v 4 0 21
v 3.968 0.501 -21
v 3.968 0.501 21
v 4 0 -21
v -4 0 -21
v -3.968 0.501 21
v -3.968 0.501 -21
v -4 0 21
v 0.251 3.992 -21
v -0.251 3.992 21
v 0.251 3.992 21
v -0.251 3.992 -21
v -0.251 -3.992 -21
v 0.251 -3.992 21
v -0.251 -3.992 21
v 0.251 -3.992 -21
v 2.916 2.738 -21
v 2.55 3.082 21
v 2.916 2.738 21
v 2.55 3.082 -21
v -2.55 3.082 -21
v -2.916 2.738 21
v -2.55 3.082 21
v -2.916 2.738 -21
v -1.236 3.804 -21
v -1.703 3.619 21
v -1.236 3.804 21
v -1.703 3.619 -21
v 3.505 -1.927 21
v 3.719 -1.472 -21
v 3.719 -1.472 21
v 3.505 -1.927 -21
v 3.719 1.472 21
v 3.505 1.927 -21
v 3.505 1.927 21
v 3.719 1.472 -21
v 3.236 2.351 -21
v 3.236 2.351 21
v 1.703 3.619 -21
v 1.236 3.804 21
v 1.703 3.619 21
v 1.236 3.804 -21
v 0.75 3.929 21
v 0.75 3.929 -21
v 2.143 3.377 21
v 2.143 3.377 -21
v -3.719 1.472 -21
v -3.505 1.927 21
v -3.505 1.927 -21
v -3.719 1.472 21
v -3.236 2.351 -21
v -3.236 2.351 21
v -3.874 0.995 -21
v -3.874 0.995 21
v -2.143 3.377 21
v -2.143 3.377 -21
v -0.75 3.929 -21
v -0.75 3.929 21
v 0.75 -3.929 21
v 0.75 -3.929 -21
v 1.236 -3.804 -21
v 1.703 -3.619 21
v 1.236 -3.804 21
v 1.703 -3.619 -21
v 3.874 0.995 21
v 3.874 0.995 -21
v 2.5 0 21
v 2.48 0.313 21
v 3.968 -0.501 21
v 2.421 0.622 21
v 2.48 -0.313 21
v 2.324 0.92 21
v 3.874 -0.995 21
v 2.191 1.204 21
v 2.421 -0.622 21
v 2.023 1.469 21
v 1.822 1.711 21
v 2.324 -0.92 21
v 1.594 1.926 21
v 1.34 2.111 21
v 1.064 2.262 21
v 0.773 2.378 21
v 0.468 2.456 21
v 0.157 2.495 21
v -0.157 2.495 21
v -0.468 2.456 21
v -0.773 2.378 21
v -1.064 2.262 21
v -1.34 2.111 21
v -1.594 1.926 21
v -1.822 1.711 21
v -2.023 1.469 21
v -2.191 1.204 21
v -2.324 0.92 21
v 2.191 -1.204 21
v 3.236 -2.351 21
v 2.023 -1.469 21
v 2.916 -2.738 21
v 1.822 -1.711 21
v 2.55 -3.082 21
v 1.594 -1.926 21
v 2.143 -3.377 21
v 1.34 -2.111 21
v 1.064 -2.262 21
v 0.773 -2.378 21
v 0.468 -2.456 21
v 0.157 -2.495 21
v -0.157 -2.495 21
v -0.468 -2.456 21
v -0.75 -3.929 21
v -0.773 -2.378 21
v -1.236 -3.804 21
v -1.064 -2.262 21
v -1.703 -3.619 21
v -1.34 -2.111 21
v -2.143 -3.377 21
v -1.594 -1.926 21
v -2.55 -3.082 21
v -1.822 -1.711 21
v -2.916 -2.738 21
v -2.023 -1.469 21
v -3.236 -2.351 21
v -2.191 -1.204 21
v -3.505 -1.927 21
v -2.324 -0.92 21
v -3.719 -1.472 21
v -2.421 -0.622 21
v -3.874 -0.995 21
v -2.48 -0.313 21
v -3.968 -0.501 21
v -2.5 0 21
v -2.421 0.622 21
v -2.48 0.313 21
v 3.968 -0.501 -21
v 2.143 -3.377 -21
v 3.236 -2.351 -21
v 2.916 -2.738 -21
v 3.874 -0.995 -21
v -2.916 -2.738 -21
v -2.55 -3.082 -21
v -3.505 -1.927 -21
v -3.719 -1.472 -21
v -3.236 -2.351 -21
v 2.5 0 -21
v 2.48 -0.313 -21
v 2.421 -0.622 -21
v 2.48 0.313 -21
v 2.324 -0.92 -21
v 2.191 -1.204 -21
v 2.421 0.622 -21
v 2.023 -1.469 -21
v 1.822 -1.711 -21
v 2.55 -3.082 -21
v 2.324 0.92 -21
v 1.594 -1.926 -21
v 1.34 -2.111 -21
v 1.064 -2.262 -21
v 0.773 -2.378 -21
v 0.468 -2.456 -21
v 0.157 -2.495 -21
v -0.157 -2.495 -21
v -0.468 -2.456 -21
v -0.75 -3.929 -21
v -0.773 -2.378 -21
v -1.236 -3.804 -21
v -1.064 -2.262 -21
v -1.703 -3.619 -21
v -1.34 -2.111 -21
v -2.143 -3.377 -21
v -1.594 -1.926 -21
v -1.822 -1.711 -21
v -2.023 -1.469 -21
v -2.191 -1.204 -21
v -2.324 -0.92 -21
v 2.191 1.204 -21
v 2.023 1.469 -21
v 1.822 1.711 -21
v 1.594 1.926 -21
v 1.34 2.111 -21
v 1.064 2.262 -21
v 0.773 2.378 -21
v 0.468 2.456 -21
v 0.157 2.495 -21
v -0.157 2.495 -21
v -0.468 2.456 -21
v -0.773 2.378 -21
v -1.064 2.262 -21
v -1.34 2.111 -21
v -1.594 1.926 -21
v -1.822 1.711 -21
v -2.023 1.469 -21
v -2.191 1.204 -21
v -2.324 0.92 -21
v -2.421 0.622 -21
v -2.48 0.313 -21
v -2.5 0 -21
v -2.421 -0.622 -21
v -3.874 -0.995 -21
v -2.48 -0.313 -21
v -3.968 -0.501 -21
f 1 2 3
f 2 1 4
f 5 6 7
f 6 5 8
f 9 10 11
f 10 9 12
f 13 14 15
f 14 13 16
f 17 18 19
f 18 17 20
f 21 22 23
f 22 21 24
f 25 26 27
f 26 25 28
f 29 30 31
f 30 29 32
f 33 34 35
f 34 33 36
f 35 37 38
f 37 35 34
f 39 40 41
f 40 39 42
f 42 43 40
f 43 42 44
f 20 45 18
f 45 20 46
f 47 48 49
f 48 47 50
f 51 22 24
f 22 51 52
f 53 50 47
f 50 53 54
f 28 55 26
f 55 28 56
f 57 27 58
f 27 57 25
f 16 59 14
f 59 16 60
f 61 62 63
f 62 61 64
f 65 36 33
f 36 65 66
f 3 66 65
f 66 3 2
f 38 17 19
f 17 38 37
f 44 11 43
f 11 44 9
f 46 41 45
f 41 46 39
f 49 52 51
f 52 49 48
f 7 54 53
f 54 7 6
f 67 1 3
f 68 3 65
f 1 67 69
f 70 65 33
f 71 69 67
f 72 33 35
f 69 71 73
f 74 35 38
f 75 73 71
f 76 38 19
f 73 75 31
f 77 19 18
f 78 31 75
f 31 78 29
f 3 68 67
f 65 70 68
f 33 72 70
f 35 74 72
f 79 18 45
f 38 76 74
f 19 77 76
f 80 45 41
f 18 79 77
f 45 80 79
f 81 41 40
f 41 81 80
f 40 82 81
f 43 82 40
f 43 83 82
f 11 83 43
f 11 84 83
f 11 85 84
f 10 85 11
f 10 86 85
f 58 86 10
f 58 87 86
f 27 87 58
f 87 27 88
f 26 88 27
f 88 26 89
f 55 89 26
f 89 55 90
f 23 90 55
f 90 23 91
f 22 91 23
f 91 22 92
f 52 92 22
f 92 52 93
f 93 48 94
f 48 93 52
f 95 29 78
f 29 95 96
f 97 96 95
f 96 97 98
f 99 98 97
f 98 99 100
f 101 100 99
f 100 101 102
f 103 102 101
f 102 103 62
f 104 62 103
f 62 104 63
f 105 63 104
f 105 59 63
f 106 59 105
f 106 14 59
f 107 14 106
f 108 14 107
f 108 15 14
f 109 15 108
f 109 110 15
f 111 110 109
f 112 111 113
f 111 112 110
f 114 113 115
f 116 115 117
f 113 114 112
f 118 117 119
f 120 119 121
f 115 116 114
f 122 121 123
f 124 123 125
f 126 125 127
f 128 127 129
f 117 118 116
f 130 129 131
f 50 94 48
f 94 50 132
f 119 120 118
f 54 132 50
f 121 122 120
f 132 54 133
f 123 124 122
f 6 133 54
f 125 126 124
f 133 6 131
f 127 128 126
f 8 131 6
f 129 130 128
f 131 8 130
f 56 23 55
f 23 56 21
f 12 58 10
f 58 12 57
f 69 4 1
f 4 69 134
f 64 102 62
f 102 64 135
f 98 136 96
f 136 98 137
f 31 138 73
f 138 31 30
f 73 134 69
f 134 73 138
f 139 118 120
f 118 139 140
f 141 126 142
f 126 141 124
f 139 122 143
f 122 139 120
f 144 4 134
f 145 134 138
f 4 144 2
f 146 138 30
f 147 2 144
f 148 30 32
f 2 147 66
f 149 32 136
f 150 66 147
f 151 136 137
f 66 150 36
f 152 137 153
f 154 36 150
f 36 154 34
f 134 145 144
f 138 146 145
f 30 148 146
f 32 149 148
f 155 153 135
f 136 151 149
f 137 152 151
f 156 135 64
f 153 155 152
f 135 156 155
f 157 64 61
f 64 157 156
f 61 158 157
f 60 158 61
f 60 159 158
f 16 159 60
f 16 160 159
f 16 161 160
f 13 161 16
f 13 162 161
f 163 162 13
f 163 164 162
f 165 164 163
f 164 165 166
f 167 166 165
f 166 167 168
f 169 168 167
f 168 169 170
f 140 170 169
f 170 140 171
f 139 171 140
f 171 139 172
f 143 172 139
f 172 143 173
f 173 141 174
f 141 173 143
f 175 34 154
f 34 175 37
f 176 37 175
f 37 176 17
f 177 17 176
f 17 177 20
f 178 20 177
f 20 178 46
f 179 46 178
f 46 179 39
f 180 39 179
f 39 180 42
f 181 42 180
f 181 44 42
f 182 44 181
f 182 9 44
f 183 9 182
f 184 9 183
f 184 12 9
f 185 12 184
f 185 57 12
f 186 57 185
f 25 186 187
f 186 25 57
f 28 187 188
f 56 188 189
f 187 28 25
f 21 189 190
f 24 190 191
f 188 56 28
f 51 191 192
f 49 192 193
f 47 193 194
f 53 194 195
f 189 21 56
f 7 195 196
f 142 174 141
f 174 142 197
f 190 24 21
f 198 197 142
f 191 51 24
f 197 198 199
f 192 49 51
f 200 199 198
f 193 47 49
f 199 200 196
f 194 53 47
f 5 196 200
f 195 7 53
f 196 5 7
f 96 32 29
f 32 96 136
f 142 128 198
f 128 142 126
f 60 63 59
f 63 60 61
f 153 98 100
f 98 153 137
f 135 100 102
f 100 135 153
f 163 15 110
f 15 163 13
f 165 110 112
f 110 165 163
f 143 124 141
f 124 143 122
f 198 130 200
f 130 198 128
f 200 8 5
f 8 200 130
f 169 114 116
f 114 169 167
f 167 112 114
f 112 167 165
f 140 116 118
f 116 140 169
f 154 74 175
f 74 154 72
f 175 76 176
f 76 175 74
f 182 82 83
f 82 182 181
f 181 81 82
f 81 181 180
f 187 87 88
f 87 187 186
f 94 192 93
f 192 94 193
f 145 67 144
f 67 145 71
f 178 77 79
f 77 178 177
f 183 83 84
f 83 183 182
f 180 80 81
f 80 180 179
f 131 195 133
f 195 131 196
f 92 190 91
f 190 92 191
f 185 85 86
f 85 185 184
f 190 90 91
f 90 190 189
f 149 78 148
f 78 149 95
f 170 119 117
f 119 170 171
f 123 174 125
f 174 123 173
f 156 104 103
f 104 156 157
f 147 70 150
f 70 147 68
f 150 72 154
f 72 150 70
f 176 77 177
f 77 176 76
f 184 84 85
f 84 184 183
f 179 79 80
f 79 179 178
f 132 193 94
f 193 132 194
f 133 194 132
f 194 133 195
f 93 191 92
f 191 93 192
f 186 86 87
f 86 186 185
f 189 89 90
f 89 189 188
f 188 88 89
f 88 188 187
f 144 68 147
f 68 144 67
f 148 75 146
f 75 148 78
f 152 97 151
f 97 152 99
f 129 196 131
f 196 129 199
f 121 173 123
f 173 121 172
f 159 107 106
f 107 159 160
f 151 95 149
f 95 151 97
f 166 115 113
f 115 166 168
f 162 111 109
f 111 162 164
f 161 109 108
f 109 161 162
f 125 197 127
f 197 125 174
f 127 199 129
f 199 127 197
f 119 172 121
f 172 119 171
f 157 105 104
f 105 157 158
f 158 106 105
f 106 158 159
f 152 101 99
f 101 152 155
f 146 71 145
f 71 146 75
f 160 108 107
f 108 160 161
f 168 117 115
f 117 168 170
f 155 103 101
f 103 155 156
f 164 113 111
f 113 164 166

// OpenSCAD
$fn = 50;


difference() {
	union() {
		translate(v = [0, 0, -21.0000000000]) {
			cylinder(h = 42, r = 4.0000000000);
		}
	}
	union() {
		translate(v = [0, 0, -100.0000000000]) {
			cylinder(h = 200, r = 2.5000000000);
		}
	}
}
